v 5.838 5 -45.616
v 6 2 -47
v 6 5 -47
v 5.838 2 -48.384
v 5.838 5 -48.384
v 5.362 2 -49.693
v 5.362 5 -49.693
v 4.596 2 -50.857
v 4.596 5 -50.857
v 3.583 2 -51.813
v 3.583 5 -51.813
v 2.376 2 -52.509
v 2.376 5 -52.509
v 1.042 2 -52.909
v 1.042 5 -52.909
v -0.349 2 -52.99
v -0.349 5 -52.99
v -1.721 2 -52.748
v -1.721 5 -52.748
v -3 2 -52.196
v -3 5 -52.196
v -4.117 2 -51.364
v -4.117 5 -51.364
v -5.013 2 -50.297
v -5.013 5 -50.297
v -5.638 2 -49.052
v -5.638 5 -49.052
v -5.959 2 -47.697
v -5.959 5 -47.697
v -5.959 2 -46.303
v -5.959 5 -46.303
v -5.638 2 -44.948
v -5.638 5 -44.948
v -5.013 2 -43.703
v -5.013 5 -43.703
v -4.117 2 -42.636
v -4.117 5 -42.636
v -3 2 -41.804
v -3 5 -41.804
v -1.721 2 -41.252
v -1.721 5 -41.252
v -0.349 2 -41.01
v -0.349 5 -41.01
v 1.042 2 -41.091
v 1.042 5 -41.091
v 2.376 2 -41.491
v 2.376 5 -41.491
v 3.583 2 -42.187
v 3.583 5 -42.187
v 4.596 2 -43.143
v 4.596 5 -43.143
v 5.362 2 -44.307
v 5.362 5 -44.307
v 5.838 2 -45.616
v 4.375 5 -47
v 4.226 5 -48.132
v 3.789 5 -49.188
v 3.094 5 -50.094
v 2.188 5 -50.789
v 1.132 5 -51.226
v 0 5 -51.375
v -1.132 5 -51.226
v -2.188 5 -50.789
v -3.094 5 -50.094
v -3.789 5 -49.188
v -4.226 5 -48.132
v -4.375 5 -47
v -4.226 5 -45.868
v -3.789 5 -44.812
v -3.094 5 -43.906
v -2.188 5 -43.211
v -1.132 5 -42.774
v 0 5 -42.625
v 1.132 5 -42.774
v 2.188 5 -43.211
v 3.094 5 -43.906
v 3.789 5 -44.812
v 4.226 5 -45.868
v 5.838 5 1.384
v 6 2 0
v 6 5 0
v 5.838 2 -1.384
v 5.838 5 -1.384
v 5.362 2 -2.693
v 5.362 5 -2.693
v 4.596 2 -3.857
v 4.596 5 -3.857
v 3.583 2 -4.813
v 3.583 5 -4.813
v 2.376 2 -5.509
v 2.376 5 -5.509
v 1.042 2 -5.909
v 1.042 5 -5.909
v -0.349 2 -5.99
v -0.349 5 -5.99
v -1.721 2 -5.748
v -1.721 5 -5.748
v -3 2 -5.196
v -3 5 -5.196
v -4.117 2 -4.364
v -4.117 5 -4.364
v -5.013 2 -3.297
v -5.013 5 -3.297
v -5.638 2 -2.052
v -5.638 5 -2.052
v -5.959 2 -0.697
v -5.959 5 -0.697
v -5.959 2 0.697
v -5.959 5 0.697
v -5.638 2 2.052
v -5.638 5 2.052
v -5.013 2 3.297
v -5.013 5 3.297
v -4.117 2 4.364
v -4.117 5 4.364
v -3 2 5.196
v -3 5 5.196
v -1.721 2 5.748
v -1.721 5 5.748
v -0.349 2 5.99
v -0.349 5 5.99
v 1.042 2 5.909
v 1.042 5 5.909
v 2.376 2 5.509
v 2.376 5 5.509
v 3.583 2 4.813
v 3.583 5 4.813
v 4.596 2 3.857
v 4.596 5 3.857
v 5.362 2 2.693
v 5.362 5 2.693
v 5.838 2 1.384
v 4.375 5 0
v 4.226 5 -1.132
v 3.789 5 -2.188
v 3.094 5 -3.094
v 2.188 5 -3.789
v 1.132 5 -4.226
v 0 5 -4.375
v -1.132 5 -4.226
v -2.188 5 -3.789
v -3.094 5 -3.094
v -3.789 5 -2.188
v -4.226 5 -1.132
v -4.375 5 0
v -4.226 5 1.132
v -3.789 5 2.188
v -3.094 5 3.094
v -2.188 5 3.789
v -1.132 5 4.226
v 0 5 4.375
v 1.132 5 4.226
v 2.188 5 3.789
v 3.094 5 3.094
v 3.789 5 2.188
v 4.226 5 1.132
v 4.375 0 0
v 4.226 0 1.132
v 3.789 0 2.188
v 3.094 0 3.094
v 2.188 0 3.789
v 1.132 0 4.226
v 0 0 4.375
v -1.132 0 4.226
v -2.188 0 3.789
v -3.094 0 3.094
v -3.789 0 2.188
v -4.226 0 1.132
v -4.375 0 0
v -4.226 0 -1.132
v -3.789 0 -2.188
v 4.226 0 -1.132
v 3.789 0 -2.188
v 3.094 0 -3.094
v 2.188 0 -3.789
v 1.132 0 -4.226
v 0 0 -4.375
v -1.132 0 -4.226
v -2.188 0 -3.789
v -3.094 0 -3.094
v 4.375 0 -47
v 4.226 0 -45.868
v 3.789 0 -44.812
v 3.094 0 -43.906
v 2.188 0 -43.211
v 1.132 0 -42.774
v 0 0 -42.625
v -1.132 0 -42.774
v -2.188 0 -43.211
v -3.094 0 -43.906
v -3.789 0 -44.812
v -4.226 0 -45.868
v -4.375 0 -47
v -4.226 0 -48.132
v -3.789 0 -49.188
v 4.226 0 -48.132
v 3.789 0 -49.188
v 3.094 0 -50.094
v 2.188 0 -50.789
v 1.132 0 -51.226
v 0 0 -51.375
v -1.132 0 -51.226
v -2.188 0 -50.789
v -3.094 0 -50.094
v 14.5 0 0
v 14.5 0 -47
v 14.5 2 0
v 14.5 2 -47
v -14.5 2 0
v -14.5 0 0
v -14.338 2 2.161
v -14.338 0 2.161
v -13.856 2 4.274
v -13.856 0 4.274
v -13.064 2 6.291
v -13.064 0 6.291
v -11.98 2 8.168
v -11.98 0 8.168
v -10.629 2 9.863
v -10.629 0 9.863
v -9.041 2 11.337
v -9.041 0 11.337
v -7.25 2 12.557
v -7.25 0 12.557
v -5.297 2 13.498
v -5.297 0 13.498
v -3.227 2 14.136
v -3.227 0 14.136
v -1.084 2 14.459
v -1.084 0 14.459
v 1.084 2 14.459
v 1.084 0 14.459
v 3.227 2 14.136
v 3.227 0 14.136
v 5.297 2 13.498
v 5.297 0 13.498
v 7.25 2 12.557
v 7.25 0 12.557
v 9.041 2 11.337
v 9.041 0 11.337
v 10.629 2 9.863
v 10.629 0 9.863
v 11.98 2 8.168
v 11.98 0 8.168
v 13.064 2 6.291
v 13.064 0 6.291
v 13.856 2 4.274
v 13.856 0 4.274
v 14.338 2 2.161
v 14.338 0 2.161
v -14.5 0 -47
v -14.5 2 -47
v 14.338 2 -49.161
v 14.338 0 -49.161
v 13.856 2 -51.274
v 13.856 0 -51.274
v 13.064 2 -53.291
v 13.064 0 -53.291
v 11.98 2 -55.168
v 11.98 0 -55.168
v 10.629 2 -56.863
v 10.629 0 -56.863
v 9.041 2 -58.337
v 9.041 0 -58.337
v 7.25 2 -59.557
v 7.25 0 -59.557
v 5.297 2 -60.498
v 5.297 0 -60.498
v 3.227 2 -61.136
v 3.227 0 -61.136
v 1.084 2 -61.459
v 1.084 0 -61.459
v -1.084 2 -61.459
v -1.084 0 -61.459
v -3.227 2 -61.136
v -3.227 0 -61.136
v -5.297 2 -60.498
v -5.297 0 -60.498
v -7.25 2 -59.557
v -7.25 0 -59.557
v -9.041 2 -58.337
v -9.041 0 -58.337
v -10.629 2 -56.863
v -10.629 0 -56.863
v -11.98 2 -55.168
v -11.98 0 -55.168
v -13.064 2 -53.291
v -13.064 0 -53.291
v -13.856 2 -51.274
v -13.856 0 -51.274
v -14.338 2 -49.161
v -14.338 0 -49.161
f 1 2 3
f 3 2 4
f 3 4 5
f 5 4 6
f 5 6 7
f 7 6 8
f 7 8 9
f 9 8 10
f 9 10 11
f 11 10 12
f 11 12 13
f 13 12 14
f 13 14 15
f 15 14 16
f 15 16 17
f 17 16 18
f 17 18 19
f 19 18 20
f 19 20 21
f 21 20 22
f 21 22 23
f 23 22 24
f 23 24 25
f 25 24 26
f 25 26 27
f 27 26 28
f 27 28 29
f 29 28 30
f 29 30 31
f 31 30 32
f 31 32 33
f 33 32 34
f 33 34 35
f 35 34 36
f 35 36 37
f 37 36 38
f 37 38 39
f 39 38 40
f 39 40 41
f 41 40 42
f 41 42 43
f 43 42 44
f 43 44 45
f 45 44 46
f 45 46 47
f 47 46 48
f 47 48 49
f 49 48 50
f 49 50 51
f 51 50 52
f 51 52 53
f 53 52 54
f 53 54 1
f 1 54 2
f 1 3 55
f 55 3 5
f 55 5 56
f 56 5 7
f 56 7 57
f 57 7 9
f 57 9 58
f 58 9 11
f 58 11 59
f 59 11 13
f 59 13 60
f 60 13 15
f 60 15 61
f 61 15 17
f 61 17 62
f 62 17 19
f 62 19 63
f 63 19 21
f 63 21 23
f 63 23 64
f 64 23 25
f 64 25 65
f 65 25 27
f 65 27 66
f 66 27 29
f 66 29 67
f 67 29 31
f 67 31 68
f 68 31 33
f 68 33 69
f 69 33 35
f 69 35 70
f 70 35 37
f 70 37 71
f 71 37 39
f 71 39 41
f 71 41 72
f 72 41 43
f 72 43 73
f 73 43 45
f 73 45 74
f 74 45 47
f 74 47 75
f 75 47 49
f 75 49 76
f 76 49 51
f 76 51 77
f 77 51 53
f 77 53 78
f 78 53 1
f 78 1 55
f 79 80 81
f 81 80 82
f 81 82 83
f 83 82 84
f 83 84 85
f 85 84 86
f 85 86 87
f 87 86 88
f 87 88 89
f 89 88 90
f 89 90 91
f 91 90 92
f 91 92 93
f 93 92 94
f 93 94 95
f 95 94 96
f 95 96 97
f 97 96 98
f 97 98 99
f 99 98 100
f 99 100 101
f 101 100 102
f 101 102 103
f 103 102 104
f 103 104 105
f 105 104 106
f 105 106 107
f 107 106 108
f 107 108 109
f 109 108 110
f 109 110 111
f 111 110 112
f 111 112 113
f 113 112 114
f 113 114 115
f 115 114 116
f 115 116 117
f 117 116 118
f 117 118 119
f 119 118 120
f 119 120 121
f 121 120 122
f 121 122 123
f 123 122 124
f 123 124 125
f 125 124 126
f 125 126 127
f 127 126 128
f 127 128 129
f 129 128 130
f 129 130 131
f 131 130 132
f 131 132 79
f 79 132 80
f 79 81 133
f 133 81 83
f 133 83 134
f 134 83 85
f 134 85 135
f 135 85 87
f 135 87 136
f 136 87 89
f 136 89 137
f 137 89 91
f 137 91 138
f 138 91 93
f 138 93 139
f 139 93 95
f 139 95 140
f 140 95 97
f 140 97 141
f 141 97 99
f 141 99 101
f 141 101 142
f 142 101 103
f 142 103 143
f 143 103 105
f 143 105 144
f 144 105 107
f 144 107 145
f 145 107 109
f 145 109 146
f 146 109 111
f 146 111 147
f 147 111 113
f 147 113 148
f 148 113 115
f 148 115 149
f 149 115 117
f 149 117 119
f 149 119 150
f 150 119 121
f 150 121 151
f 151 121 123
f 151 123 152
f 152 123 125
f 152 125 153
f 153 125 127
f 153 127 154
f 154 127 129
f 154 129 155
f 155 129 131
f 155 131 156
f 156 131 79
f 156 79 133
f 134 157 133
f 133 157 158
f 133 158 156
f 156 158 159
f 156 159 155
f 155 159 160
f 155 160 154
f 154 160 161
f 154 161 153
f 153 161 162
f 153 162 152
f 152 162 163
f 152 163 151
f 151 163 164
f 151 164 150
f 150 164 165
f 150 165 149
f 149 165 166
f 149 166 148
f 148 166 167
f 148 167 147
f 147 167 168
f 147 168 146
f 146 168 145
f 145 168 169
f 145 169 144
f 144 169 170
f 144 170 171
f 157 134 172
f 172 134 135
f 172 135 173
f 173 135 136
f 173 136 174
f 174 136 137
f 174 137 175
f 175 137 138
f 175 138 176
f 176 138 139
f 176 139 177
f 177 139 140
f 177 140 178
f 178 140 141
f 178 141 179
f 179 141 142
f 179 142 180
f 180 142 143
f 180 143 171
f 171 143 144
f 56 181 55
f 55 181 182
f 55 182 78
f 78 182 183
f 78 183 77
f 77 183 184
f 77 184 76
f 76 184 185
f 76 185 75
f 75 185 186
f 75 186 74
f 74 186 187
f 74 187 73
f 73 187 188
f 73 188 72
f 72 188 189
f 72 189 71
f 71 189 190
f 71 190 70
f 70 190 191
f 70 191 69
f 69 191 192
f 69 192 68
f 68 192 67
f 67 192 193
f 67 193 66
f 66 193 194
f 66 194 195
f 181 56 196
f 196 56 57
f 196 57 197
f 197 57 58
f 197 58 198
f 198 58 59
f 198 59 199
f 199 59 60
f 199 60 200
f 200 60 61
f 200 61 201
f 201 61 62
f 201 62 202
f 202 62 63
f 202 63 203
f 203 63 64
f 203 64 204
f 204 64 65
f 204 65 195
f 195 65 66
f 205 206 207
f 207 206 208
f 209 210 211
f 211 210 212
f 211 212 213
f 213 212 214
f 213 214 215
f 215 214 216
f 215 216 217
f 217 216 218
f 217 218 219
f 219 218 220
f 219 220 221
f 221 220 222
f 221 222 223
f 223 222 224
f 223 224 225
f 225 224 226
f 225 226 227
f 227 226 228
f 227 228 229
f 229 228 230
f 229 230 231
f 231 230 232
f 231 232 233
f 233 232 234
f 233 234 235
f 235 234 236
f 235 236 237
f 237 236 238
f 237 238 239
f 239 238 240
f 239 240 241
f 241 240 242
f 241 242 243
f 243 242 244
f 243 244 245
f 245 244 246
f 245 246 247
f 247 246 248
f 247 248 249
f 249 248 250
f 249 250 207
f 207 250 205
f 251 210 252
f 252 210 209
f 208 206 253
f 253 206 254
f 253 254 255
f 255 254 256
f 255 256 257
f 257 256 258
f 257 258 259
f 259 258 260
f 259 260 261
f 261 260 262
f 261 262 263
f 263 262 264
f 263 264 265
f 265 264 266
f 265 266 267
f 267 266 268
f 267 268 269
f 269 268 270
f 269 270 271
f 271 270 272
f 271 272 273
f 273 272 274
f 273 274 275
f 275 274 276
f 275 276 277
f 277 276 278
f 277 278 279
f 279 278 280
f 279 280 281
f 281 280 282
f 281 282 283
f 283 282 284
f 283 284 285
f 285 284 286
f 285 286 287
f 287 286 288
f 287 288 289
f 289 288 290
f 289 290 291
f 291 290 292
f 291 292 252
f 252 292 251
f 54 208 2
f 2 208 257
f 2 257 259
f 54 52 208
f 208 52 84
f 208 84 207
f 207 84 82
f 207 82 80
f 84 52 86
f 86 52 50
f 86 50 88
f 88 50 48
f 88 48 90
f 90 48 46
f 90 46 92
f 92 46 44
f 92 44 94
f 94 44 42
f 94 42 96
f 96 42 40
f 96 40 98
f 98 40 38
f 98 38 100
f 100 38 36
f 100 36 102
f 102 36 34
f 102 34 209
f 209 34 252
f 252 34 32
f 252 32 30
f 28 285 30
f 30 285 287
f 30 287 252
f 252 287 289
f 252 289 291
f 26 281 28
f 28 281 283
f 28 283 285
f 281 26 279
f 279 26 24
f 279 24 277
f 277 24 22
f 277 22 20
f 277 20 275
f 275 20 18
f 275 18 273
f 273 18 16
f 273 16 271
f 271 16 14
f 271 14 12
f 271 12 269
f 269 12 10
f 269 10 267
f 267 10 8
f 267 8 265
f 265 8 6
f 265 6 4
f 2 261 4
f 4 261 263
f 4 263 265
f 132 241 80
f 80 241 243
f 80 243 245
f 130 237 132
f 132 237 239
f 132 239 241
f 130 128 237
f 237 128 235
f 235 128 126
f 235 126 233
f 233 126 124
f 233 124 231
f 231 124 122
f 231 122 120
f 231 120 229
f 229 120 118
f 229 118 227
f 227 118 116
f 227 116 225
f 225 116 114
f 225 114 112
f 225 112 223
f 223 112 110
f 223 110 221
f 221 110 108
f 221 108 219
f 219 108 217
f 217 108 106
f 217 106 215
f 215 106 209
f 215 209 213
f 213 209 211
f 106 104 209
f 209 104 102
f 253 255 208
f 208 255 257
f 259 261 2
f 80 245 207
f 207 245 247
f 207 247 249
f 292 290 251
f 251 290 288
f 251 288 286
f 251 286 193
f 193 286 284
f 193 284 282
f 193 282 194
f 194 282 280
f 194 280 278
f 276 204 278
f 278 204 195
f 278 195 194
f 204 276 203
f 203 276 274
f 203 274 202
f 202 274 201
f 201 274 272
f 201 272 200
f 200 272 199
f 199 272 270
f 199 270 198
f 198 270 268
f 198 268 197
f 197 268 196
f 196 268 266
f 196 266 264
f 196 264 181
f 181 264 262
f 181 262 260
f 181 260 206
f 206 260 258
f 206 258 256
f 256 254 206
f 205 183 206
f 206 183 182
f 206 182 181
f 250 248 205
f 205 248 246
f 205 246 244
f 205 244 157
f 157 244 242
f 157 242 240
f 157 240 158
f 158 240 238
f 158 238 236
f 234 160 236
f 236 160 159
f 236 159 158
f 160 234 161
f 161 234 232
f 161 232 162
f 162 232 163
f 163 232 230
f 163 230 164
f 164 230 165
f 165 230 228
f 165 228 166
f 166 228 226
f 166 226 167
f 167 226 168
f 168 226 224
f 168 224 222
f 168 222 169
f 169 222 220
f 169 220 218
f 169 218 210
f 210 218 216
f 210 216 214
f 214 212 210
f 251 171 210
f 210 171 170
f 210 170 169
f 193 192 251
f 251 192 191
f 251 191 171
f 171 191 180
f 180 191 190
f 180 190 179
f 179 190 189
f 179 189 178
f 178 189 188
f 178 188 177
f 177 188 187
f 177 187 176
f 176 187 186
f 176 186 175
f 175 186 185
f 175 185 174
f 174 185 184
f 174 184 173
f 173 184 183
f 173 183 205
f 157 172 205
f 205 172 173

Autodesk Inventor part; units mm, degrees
ref_plane "YZ Plane" through (0, 0, 0) normal (1, 0, 0) x (0, 1, 0)
ref_plane "XZ Plane" through (0, 0, 0) normal (0, 1, 0) x (-1, 0, 0)
ref_plane "XY Plane" through (0, 0, 0) normal (0, 0, 1) x (1, 0, 0)
sketch "Sketch3" plane through (0, 0, 0) normal (0, 1, 0) x (-1, 0, 0)
  line L0 (0, 0) -> (0, -47) construction
  line L1 (-14.5, 0) -> (-14.5, -47)
  line L2 (14.5, -47) -> (14.5, 0)
  arc A0 (14.5, 0) -> (-14.5, 0) centre (0, 0) ccw
  arc A1 (-14.5, -47) -> (14.5, -47) centre (0, -47) ccw
  line L3 (0, 0) -> (47, 0) construction
  circle A2 centre (0, 0) radius 4.375
  circle A3 centre (0, -47) radius 4.375
  point P0 (0, -23.5)
  dimension "d8" = 47
  dimension "d9" = 90
  dimension "d10" = 29
  dimension "d11" = 8.75
  dimension "d12" = 8.75
extrude "Extrusion3" add sketch "Sketch3" along normal blind 2
sketch "Sketch4" plane through (0, 2, 0) normal (0, 1, 0) x (1, 0, 0)
  circle A0 centre (0, 0) radius 4.375 projected
  circle A1 centre (0, 0) radius 2.75
  circle A2 centre (0, 47) radius 4.375 projected
  circle A3 centre (0, 47) radius 2.75
  circle A4 centre (0, 0) radius 6
  circle A5 centre (0, 47) radius 6
  dimension "d15" = 12
  dimension "d16" = 12
extrude "Extrusion4" add sketch "Sketch4" along normal blind 3 contours A4 | A5
properties part number "Belt_Washer"
